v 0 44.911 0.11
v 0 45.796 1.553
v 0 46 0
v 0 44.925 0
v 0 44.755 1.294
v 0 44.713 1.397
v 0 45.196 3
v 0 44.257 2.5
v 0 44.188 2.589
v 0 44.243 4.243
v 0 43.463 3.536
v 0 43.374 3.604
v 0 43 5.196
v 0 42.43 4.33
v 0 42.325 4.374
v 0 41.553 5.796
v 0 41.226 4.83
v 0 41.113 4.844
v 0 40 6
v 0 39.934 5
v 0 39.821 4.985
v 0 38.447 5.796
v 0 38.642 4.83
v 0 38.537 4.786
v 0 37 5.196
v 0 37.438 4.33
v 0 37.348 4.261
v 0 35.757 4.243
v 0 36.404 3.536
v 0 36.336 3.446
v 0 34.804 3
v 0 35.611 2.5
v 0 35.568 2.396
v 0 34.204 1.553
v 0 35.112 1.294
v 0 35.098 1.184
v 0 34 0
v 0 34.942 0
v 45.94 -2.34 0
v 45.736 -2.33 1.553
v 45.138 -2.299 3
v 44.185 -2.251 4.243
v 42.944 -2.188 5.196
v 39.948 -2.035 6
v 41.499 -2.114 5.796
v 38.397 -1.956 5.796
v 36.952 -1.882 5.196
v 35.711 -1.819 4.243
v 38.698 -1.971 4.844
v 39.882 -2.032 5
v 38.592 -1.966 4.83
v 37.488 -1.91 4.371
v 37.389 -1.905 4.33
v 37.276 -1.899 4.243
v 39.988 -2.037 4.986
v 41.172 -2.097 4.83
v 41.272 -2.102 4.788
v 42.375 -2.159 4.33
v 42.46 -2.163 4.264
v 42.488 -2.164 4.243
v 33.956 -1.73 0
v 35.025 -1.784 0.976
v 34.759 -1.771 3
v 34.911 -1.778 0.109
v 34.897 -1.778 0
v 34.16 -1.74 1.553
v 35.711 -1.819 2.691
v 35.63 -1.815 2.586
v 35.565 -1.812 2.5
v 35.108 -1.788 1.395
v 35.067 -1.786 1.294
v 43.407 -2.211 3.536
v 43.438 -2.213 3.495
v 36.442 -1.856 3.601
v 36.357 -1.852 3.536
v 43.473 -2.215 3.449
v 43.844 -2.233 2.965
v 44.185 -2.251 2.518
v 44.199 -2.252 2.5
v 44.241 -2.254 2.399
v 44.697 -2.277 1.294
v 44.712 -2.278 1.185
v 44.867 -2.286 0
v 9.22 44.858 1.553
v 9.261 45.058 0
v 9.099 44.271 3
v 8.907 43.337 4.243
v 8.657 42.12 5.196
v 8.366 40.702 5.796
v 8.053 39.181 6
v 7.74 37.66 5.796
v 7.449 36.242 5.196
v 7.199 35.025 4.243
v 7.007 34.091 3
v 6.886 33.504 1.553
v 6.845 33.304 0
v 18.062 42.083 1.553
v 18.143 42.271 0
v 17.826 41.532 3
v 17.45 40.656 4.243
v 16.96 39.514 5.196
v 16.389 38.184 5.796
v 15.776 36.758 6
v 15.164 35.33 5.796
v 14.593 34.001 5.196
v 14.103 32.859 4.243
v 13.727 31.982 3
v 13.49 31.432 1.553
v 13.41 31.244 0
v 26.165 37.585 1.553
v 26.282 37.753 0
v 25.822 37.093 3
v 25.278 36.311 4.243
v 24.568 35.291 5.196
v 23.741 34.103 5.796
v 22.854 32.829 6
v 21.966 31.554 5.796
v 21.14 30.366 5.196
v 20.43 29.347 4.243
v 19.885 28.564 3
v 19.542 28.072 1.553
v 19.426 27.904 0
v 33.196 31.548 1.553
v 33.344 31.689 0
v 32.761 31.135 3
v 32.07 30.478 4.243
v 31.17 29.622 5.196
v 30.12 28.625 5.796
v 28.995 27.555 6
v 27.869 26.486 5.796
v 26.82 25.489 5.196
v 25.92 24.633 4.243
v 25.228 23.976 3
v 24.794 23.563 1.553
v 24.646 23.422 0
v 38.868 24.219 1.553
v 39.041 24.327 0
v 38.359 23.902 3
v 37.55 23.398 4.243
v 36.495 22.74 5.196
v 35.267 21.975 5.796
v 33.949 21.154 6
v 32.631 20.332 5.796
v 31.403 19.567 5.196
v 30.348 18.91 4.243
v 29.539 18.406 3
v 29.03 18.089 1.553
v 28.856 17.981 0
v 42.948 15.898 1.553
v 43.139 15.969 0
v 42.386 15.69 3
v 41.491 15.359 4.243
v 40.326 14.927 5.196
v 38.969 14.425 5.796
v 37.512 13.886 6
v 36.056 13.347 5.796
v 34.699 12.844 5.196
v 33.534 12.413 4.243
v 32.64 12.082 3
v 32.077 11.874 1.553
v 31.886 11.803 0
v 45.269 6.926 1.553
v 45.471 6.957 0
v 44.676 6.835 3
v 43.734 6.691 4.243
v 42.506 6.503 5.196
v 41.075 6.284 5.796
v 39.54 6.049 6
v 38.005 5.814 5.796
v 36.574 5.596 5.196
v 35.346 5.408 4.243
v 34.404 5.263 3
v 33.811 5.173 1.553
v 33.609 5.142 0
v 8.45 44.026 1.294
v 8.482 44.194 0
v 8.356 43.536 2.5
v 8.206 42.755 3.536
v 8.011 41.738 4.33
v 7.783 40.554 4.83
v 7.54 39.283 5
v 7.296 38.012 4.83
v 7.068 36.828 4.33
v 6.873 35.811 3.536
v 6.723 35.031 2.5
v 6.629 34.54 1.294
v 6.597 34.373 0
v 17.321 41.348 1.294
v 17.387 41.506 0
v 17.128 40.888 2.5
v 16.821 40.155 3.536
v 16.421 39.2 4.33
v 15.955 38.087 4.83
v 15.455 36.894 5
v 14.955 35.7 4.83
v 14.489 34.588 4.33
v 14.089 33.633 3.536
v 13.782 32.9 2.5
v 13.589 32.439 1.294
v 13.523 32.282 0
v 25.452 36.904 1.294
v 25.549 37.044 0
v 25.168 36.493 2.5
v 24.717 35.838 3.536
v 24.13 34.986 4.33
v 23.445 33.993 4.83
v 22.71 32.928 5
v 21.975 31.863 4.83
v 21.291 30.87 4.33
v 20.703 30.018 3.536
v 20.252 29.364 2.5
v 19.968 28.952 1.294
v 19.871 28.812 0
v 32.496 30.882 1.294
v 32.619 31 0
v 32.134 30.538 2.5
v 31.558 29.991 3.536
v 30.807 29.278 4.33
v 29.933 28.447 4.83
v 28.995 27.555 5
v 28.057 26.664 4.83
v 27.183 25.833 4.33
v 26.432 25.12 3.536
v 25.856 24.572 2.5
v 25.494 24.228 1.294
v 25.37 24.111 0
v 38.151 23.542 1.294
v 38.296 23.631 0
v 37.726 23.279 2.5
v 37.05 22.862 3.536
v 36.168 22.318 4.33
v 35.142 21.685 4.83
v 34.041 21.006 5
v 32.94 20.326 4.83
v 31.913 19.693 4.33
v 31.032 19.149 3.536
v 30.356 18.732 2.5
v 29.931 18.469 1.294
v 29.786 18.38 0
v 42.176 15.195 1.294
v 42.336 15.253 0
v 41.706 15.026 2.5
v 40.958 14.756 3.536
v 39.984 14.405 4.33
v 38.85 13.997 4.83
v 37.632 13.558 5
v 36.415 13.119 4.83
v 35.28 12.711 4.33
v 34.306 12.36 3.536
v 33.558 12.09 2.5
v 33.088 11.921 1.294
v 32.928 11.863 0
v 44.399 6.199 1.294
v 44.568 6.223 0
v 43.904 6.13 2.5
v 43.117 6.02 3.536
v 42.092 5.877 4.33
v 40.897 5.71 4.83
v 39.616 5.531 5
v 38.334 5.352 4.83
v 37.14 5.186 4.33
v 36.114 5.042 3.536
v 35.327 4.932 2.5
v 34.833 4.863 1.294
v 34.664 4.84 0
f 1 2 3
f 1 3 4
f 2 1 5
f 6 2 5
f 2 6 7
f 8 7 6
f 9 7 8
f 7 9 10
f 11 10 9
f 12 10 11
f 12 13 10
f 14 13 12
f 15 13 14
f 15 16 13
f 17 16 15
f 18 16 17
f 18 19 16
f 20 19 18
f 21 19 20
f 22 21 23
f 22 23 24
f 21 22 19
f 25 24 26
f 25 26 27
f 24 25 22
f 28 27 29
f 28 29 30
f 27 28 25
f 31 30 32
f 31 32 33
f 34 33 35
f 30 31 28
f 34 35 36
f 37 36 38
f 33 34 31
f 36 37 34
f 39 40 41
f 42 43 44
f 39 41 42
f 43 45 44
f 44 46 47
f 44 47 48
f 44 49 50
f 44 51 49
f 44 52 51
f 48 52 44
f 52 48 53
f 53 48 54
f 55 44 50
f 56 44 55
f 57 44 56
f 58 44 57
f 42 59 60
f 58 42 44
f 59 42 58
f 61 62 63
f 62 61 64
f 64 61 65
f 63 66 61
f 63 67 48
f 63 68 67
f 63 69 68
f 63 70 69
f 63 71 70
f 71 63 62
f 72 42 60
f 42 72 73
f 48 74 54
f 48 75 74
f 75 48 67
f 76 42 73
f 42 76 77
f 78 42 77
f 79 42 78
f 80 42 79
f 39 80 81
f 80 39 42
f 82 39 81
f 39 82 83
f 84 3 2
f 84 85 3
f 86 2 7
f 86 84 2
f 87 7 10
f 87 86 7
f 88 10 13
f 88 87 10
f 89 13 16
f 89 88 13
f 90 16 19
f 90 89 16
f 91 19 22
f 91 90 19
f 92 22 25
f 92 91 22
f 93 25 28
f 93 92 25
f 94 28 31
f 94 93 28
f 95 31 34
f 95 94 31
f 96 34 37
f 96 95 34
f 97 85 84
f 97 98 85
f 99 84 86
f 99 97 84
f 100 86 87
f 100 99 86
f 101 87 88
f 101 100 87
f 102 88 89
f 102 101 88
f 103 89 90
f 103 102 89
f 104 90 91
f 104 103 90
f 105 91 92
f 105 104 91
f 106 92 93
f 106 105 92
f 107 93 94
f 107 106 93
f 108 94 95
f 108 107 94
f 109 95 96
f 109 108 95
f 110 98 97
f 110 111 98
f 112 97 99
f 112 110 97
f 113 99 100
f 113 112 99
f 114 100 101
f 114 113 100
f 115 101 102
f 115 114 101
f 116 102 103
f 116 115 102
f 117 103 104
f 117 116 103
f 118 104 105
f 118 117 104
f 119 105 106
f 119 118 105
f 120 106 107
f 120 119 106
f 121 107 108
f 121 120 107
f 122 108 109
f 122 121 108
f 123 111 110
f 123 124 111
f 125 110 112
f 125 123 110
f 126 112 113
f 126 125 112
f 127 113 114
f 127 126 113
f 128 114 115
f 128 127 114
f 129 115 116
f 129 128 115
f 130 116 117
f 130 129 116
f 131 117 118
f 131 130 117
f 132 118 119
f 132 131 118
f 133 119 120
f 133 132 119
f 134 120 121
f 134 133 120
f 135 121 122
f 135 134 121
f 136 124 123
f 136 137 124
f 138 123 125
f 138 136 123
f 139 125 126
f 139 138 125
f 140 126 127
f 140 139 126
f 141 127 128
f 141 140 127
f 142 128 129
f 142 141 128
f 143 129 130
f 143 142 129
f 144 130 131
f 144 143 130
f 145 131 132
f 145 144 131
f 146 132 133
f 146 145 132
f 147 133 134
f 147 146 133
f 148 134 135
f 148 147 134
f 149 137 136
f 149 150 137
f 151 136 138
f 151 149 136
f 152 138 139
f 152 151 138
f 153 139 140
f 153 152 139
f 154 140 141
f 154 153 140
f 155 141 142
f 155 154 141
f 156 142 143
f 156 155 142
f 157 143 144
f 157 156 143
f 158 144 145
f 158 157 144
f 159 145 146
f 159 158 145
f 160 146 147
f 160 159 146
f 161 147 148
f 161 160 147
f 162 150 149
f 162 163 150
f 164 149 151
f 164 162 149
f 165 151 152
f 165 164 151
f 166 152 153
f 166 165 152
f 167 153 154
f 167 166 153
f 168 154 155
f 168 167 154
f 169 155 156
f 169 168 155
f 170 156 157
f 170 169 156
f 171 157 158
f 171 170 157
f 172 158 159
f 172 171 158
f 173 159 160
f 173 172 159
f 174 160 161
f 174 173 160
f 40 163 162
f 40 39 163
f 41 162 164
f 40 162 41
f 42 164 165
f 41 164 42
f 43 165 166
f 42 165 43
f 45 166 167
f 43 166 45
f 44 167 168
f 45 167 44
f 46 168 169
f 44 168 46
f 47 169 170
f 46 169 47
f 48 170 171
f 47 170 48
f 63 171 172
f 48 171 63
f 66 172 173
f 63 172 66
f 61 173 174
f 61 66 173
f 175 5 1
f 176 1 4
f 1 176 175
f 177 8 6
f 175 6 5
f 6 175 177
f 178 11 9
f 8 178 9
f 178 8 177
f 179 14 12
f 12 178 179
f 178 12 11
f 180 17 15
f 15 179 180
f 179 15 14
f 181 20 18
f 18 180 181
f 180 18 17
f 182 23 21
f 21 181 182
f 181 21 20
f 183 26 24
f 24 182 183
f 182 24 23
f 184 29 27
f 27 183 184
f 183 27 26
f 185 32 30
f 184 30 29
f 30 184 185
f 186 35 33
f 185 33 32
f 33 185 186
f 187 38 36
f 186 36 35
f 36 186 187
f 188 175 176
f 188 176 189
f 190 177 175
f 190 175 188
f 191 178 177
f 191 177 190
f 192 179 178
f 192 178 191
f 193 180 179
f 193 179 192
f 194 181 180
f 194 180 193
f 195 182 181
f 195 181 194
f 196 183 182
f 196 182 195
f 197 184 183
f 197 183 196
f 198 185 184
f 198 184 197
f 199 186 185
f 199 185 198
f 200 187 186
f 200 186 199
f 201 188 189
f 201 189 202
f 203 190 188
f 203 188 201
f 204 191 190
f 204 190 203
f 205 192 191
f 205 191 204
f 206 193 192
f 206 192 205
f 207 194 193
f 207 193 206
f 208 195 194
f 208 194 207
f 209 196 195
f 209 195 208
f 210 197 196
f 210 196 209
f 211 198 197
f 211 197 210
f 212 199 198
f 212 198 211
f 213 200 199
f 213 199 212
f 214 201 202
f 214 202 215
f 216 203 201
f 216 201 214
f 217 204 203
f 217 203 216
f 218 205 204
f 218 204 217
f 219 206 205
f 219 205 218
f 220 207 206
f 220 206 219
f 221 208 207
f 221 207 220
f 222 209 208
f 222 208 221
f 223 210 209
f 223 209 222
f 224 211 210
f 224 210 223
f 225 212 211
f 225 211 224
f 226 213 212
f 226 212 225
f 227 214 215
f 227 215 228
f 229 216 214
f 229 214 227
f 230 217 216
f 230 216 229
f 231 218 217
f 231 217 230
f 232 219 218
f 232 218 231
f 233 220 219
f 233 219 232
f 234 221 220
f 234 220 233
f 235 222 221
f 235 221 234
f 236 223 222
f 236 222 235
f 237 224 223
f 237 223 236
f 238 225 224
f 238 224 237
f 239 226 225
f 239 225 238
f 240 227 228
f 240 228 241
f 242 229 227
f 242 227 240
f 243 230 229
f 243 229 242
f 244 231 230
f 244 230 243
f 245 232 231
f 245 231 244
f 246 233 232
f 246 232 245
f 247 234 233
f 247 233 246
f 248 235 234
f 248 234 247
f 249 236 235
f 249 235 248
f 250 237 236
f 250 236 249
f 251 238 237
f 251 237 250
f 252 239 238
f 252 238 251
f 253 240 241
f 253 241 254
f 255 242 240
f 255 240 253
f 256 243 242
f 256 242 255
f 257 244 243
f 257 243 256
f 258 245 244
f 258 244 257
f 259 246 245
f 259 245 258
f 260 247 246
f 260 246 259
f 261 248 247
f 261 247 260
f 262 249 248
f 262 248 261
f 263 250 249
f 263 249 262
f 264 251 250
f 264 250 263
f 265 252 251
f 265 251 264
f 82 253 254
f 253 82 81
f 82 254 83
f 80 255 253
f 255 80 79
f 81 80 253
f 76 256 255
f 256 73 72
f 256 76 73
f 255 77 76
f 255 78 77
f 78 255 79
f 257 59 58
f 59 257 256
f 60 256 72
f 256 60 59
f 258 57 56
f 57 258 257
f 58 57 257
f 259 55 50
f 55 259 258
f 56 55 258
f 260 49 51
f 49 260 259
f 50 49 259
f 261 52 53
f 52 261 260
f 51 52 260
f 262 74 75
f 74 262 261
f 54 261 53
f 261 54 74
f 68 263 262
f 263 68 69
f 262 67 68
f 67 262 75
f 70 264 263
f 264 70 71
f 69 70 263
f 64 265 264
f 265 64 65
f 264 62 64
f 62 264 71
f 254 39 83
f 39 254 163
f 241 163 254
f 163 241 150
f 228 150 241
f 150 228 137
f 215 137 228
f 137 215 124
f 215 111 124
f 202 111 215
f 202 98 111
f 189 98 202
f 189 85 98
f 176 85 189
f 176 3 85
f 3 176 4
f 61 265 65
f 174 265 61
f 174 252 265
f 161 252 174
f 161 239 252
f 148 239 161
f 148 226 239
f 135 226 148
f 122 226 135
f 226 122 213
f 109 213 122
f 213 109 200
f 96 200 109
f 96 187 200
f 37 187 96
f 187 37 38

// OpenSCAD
// file: ../build_environments.scad
// build_environments.scad: modules to build level sections
//

module pool(diameter=10.0, wall_height=2.0, step_width=3.0, connections=[])
{
    difference() {
        union() {
        difference() {
            cylinder(h=0.5,r1=diameter+step_width,r2=diameter+step_width,$fn=48);
            translate([0,0,-0.1])
                cylinder(h=0.7,r1=diameter,r2=diameter,$fn=48);
        }
        difference() {
            cylinder(h=wall_height,r1=diameter+step_width+1.0,r2=diameter+step_width+1.0,$fn=48);
            translate([0,0,-0.1])
                cylinder(h=wall_height+0.2,r1=diameter+step_width,r2=diameter+step_width,$fn=48);
        }
        }
    
        for (c = connections)
        {
            rotate([0,90,0]) {
                angle = atan2(c[1],c[0]);
                rotate([-angle,0,0]) {
                    cylinder(h=diameter+5.0,r1=c[2],r2=c[2],$fn=48);
                }
            }
        }
    }
}

module straight(length=10.0, width=2.0, dy1=0.0, dy2=0.0, dz=0.0)
{
    dims = [0, 0, 0, 0, 0, (dz/length)];
    matrix = [
        [ 1, dims[0], dims[1], 0 ],
        [ dims[2], 1, dims[4], 0 ],
        [ dims[5], dims[3], 1, 0 ],
        [ 0, 0, 0, 1 ]
    ];
    multmatrix(matrix)
    difference() {
        translate([dy1,0,0])
        union() {
            rotate([0,90,0]) {
                difference() {
                    cylinder(h=(length-dy1-dy2),r1=width+1.0,r2=width+1.0,$fn=24);
                    translate([0,0,-0.1])
                        cylinder(h=(length-dy1-dy2+0.2),r1=width,r2=width,$fn=24);
                }
                difference() {
                    cylinder(h=1.0,r1=width+2.0,r2=width+2.0,$fn=24);
                    translate([0,0,-0.1])
                        cylinder(h=1.2,r1=width,r2=width,$fn=24);
                }
                translate([0,0,(length-dy1-dy2)-1.0]) {
                    difference() {
                        cylinder(h=1.0,r1=width+2.0,r2=width+2.0,$fn=24);
                        translate([0,0,-0.1])
                            cylinder(h=1.2,r1=width,r2=width,$fn=24);
                    }
                }
            }
        }
        translate([0,0,-(2*width+4.0)/2])
            cube([3*length,3*length,2*width+4.0],center=true);
    }
}

module curve(p0=[0,0], center=[0,0], dir=1, angle=0.0, width=2.0)
{
    radius = sqrt((p0[0]-center[0])*(p0[0]-center[0]) + (p0[1]-center[1])*(p0[1]-center[1]));
    if (dir == 0) {
        difference() {
            rotate([0,0,-90])
            difference() {
                rotate_extrude(angle = angle, convexity = 10, $fn=32)
                    translate([radius, 0, 0])
                        circle(r = width+1.0,$fn=24);
                rotate([0,0,-1.0])
                    rotate_extrude(angle = angle+2.0, convexity = 10, $fn=32)
                        translate([radius, 0, 0])
                            circle(r = width,$fn=24);
            }
            translate([0,0,-(2*width+4.0)/2])
                cube([5*radius,5*radius,2*width+4.0],center=true);
        }
    }
    else {
        difference() {
            rotate([0,0,90])
            difference() {
                rotate_extrude(angle = -angle, convexity = 10, $fn=32)
                    translate([radius, 0, 0])
                        circle(r = width+1.0,$fn=24);
                rotate([0,0,1.0])
                    rotate_extrude(angle = -angle-2.0, convexity = 10, $fn=32)
                        translate([radius, 0, 0])
                            circle(r = width,$fn=24);
            }
            translate([0,0,-(2*width+4.0)/2])
                cube([5*radius,5*radius,2*width+4.0],center=true);
        }
    }

}

// test pool
//pool(diameter=12.0000, wall_height=3.0000, step_width=3.0000, connections=[[0.0000,-26.0000,2.0000], [23.6074,0.0000,2.0000]]);

// test straight, slope
//straight(length=26.0000, width=2.0000, dy1=11.8322, dy2=6.7082, dz=0.0000);
//straight(length=29.1549, width=12.0000, dy1=0.0000, dy2=0.0000, dz=-15.0000);

// test curve
//curve(p0=[23.6074, 0.0000], center=[23.6074, 5.0000], dir=0, angle=60.1011, width=2.0000);
//curve(p0=[33.6426, 12.4219], center=[37.9771, 9.9295], dir=1, angle=120.4627, width=2.0000);
// main file
use <../build_environments.scad>;
curve(p0=[-111.2165, -193.2595], center=[-71.3485, -196.5071], dir=1, angle=92.9162, width=5.0000);
